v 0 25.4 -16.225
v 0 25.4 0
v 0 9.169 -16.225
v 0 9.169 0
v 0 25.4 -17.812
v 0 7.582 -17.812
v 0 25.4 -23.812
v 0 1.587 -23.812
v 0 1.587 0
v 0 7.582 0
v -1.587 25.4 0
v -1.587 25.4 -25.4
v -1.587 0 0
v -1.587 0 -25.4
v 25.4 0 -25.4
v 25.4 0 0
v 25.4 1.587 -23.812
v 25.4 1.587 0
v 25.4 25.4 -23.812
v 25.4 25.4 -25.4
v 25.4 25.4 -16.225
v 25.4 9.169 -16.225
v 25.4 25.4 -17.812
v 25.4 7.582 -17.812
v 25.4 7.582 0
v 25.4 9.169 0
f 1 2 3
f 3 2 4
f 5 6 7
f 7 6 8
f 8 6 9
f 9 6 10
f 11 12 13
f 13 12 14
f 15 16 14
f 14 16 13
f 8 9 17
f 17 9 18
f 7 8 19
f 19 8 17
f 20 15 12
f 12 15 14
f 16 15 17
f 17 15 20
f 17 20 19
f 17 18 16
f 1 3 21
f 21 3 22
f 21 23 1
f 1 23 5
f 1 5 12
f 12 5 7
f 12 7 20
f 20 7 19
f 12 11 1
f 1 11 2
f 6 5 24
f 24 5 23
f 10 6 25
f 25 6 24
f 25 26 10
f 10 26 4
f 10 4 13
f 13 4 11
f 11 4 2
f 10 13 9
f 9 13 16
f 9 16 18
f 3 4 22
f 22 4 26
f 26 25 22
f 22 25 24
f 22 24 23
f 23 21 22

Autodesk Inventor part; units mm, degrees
ref_plane "YZ Plane" through (0, 0, 0) normal (1, 0, 0) x (0, 1, 0)
ref_plane "XZ Plane" through (0, 0, 0) normal (0, 1, 0) x (-1, 0, 0)
ref_plane "XY Plane" through (0, 0, 0) normal (0, 0, 1) x (1, 0, 0)
sketch "Sketch3" plane through (0, 0, 0) normal (1, 0, 0) x (0, 1, 0)
  line L0 (0, 0) -> (25.4, 0)
  line L1 (25.4, 0) -> (25.4, -25.4)
  line L2 (25.4, -25.4) -> (0, -25.4)
  line L3 (0, -25.4) -> (0, 0)
  line L4 (25.4, -23.8125) -> (1.5875, -23.8125)
  line L5 (1.5875, -23.8125) -> (1.5875, 0)
  line L6 (7.5819, -17.8125) -> (25.4, -17.8125)
  line L7 (7.5819, 0) -> (7.5819, -17.8125)
  line L8 (9.1694, 1) -> (9.1694, -16.225)
  line L9 (9.1694, -16.225) -> (25.4, -16.225)
  point P0 (25.4, -16.225)
  point P1 (9.1694, 0)
  dimension "d15" = 25.4
  dimension "d16" = 25.4
  dimension "d17" = 1.5875
  dimension "d18" = 6
  dimension "d19" = 1.5875
  dimension "d24" = 5.9944
extrude "Extrusion3" add sketch "Sketch3" along normal blind 25.4 contours L0 L5 L4 L1 L2 L3 | L0 L8 L9 L1 L6 L7
sketch "Sketch4" plane through (0, 0, 0) normal (-1, 0, 0) x (0, 0, 1)
  line L0 (-25.4, 0) -> (-25.4, 25.4) projected
  line L1 (-25.4, 25.4) -> (0, 25.4)
  line L2 (0, 25.4) -> (0, 0)
  line L3 (0, 0) -> (-25.4, 0)
  line L4 (-25.4, 0) -> (-25.4, 25.4)
extrude "Extrusion4" add sketch "Sketch4" along normal blind 1.5875
properties part number "clip corner"
